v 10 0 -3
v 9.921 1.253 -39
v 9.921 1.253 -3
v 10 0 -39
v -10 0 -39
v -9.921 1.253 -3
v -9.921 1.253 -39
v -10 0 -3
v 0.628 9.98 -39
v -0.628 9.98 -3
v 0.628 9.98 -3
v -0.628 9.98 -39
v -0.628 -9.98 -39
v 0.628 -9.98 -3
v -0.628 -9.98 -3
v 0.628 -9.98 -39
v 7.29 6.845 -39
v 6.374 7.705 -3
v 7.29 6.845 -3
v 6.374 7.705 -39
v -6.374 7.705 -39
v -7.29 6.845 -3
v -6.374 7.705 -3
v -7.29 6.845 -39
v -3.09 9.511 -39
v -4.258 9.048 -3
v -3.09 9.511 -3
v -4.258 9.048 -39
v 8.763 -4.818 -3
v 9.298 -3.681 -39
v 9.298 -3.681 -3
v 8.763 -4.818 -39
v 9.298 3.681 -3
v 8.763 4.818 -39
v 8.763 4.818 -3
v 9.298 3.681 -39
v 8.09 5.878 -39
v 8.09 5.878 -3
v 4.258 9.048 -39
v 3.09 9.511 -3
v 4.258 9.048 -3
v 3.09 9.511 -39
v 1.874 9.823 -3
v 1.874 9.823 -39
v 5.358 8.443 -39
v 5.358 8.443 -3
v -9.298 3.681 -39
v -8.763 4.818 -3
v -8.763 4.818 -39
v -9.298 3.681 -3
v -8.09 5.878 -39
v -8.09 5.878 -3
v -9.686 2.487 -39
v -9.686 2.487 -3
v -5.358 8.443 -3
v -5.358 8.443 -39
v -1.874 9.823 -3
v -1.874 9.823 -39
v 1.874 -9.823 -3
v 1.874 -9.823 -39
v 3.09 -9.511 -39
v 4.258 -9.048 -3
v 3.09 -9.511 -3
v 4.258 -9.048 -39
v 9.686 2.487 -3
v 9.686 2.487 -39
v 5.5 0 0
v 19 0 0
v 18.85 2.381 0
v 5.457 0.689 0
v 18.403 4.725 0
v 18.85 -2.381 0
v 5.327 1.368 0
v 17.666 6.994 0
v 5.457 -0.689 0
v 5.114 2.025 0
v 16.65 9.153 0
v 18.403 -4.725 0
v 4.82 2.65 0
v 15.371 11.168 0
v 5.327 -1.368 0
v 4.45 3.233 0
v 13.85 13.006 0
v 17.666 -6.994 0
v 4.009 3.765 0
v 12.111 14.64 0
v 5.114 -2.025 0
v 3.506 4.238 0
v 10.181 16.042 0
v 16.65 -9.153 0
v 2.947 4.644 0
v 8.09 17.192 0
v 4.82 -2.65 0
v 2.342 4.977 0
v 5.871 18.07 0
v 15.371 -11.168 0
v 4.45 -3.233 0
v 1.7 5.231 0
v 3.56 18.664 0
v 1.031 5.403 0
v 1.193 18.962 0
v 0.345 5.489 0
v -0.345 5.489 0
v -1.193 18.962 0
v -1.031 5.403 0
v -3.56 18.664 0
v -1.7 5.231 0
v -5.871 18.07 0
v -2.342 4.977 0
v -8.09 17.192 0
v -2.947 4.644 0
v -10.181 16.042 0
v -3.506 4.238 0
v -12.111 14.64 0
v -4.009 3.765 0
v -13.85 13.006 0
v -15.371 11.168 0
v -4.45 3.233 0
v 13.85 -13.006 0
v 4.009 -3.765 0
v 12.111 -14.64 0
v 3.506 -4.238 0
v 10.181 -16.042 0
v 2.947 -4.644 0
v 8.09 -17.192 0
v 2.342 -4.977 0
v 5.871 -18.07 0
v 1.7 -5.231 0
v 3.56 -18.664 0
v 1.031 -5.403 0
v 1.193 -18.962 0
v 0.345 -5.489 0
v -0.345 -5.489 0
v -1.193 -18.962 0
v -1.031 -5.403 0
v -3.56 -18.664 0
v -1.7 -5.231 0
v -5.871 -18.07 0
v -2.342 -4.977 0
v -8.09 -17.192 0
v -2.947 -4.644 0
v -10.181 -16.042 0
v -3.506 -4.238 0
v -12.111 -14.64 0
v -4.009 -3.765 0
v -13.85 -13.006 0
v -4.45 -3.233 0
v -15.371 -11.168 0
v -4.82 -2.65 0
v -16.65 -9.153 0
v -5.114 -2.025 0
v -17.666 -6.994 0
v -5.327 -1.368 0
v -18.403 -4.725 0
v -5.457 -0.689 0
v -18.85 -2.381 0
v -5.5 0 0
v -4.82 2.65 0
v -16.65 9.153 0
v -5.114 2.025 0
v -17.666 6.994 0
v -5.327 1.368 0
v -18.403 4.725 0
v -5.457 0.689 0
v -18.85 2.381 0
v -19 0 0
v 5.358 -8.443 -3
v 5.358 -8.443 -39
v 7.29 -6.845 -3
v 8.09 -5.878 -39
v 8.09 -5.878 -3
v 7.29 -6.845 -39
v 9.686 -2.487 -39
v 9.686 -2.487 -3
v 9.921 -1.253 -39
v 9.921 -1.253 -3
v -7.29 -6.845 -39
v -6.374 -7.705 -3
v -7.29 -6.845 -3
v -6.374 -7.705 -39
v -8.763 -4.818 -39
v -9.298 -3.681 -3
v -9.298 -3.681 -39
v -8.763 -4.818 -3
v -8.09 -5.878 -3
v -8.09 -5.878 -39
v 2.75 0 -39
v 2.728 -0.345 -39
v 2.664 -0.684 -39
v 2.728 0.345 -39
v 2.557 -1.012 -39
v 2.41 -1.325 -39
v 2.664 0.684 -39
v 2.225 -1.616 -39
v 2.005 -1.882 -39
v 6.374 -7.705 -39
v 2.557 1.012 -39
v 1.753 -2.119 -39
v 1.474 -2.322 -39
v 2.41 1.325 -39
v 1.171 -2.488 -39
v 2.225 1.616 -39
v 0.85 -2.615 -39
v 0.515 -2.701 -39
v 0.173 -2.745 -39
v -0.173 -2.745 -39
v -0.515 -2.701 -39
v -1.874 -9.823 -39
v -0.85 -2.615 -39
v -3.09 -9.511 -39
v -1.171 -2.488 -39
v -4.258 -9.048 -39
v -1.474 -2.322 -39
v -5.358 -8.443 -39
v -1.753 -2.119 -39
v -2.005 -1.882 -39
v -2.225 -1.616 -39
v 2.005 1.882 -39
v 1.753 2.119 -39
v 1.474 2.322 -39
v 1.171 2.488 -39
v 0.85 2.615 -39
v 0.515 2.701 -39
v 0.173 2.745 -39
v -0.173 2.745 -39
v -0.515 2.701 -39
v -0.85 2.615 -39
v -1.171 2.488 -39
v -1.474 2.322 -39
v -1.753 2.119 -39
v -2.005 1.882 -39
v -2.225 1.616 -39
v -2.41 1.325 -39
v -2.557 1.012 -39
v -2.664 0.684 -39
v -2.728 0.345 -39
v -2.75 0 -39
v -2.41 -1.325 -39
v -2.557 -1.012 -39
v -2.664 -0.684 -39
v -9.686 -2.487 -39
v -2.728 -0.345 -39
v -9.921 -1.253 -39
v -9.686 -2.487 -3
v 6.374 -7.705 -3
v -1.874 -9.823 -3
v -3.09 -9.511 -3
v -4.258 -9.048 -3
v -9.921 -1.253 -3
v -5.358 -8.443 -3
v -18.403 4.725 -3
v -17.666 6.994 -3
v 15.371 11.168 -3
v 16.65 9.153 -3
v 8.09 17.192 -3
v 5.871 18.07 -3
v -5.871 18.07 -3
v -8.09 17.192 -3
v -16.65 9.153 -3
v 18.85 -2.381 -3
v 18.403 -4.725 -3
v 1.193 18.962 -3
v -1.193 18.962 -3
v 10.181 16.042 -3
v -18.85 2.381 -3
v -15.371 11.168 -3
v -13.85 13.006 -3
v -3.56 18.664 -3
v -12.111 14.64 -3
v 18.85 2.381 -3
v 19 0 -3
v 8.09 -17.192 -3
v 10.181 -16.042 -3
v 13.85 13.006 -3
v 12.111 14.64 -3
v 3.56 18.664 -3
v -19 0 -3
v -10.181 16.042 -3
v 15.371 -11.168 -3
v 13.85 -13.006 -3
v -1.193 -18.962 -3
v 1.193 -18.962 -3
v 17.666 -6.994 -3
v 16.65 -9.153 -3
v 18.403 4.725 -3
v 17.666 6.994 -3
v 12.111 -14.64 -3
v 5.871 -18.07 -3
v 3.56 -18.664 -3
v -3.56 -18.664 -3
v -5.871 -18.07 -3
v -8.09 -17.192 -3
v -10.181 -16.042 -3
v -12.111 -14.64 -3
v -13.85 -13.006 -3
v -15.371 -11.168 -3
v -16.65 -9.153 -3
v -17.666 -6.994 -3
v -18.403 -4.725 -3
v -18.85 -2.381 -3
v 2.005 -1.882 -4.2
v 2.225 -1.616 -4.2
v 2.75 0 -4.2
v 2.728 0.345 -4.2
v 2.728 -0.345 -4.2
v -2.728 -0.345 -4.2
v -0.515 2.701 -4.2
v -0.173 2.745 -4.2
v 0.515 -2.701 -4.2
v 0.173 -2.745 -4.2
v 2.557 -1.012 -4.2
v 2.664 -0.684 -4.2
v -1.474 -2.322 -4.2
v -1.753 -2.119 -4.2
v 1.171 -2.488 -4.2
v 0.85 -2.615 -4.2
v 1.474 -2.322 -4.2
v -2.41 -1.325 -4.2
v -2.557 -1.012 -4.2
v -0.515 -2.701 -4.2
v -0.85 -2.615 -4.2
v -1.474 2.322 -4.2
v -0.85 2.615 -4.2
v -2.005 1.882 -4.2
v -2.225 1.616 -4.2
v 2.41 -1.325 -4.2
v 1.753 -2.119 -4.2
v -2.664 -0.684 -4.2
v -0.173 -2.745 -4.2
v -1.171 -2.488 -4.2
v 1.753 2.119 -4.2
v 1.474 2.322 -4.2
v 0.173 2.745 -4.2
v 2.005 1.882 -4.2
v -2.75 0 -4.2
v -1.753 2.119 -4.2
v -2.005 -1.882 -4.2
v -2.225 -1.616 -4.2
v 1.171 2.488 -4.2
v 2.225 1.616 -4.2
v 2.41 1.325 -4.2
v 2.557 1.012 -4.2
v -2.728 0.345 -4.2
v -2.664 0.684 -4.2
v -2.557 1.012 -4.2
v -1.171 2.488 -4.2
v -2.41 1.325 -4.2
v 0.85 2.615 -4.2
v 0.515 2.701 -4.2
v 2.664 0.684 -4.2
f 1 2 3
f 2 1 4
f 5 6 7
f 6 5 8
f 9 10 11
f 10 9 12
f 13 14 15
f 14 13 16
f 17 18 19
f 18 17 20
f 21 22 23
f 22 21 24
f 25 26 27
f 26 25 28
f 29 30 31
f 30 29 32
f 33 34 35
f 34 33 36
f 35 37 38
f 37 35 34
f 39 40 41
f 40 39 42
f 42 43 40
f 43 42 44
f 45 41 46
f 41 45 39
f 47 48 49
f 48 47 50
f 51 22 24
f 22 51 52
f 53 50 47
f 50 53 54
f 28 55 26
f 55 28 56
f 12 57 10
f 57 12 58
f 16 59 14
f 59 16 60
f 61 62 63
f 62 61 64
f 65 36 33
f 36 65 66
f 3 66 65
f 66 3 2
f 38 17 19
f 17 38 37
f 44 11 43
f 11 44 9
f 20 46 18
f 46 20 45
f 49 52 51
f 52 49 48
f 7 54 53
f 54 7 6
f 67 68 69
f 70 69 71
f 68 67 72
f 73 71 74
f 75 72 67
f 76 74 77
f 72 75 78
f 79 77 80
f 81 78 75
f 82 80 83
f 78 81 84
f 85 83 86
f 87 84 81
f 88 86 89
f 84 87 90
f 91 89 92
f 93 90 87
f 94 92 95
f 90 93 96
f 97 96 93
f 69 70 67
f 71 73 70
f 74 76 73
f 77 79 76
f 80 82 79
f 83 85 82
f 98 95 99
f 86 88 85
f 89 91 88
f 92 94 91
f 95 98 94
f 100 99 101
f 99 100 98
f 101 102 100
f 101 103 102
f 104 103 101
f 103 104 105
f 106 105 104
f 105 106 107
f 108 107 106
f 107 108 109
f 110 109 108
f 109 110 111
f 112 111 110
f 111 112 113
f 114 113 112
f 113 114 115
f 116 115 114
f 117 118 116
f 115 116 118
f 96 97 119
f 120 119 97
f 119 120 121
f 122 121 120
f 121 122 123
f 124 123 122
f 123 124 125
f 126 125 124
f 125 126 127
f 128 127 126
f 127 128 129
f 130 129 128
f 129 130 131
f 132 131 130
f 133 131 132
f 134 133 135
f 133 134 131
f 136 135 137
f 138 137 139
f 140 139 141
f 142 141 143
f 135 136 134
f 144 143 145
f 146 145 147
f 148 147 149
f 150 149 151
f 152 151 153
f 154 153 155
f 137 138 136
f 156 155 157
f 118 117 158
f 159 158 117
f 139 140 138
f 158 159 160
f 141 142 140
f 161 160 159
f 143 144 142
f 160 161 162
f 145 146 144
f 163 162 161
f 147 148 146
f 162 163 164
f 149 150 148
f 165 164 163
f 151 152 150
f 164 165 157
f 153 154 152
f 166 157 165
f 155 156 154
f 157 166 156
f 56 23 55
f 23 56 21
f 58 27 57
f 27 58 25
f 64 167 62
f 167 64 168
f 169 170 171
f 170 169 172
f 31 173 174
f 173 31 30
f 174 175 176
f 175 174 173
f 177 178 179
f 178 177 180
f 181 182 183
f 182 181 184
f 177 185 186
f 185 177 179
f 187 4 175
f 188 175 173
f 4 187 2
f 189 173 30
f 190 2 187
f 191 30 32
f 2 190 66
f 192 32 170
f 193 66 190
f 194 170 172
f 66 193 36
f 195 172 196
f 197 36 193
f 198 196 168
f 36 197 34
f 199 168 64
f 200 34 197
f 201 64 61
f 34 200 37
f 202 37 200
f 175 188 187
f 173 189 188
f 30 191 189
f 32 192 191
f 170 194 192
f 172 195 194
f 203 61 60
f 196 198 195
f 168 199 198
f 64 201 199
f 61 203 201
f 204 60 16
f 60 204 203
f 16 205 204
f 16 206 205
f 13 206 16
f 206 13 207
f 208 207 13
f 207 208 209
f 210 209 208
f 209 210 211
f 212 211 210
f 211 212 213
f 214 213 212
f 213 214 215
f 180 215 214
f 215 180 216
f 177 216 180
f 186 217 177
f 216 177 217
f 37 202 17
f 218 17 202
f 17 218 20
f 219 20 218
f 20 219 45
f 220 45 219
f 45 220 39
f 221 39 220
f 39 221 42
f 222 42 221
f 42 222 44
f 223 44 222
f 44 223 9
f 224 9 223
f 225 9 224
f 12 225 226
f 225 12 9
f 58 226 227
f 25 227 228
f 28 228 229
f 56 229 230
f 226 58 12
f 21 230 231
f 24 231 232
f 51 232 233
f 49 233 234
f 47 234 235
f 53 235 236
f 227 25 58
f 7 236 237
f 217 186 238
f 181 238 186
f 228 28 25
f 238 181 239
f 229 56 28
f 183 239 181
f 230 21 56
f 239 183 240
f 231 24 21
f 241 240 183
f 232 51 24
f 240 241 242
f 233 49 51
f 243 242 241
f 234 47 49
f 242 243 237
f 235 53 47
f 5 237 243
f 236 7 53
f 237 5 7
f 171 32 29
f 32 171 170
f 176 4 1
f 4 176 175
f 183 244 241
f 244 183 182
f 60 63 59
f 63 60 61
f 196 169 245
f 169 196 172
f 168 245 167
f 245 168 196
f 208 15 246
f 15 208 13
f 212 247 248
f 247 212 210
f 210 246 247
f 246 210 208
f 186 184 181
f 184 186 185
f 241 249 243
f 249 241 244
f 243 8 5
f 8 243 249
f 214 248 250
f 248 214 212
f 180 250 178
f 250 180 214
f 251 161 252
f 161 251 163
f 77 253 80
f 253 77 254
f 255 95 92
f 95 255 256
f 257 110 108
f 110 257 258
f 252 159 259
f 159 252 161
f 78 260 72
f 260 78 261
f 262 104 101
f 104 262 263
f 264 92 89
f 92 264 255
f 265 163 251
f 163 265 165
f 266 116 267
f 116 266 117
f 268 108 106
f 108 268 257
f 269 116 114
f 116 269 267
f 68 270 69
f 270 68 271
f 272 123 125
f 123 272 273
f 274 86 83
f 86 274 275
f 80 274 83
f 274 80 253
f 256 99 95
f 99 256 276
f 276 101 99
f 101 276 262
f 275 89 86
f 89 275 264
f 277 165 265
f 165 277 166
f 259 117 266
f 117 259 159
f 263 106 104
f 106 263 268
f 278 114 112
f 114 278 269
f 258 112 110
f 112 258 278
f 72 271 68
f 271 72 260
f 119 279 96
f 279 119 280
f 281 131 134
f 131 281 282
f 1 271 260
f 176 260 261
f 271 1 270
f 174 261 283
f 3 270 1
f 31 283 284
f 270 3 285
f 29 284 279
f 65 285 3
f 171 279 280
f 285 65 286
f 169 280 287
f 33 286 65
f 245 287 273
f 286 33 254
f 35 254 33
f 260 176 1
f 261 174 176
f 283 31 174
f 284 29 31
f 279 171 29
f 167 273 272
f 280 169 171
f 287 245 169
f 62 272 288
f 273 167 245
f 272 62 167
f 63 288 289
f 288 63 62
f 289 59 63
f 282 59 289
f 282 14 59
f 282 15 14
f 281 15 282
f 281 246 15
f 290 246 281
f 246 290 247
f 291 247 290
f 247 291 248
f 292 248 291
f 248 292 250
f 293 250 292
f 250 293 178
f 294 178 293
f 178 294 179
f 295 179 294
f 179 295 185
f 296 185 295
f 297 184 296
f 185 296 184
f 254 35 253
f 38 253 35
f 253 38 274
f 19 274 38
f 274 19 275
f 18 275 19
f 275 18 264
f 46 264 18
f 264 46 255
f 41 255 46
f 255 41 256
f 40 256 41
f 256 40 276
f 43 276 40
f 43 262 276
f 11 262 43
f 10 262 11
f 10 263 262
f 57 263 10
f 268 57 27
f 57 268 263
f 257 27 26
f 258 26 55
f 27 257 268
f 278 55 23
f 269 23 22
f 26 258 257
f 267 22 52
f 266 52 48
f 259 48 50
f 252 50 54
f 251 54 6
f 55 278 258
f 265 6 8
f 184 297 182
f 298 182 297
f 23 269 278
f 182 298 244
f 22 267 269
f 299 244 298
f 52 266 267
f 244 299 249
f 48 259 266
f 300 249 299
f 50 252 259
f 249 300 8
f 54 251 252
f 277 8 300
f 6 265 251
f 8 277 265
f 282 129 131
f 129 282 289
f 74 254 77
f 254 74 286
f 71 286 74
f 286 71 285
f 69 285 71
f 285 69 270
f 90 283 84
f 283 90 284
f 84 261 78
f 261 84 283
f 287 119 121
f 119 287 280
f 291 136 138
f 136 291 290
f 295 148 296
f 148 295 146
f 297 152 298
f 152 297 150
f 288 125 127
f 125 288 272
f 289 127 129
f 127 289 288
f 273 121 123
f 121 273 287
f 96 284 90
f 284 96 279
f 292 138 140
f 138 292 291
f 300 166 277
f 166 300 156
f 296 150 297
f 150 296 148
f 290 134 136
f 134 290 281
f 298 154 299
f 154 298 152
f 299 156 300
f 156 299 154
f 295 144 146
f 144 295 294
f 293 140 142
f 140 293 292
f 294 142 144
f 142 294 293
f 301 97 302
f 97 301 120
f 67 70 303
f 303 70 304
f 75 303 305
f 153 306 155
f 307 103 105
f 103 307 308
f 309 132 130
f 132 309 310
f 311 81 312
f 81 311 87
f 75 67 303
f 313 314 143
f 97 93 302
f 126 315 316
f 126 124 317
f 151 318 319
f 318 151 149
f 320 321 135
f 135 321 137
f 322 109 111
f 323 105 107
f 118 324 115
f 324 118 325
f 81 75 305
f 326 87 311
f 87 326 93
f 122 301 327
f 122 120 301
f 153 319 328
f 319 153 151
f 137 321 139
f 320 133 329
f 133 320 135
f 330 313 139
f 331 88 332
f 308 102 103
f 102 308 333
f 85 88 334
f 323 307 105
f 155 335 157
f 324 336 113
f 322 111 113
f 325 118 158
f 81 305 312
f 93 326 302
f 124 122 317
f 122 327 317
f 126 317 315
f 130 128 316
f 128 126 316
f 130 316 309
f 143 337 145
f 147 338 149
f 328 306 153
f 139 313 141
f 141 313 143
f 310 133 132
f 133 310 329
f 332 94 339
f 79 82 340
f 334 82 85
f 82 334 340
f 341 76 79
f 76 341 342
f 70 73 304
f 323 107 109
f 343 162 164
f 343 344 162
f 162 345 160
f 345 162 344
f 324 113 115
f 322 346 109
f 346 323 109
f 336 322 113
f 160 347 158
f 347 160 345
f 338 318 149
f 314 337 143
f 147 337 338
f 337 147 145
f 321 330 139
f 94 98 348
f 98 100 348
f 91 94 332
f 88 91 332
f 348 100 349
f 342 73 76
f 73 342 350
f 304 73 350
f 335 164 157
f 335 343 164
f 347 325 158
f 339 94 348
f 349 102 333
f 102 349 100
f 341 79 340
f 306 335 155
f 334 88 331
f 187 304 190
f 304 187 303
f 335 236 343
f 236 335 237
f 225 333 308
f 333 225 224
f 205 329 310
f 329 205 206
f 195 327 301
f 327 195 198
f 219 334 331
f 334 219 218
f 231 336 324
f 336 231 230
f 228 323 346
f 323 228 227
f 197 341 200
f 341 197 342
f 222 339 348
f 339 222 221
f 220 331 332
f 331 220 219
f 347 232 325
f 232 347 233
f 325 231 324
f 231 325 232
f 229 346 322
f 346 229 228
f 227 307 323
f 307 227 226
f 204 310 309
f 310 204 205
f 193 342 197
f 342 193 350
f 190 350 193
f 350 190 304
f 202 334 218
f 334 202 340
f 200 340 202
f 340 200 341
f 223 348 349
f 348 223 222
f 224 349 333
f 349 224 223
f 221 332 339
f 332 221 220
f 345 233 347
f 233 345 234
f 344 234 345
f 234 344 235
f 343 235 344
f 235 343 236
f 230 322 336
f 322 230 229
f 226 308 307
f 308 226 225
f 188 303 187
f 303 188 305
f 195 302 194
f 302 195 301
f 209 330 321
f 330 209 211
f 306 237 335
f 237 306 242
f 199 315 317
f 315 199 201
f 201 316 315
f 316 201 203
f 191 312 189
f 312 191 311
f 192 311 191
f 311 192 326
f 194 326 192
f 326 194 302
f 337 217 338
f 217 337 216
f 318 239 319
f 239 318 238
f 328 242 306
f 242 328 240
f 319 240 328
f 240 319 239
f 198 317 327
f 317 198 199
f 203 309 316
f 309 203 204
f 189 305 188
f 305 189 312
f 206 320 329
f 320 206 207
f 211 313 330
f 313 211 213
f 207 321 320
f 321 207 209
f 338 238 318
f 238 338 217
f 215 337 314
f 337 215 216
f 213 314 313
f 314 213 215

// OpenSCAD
$fn = 50;


difference() {
	union() {
		translate(v = [0, 0, -39.0000000000]) {
			cylinder(h = 39, r = 10.0000000000);
		}
		translate(v = [0, 0, -3.0000000000]) {
			cylinder(h = 3, r = 19.0000000000);
		}
	}
	union() {
		translate(v = [0, 0, 0]) {
			rotate(a = [0, 0, 0]) {
				difference() {
					union() {
						#translate(v = [0, 0, -39.0000000000]) {
							cylinder(h = 39, r = 2.2500000000);
						}
						#translate(v = [0, 0, -4.2000000000]) {
							cylinder(h = 4.2000000000, r = 10.0000000000, r1 = 2.7500000000, r2 = 5.5000000000);
						}
						#translate(v = [0, 0, -39.0000000000]) {
							cylinder(h = 39, r = 2.7500000000);
						}
						#translate(v = [0, 0, -39.0000000000]) {
							cylinder(h = 39, r = 2.2500000000);
						}
					}
					union();
				}
			}
		}
	}
}
